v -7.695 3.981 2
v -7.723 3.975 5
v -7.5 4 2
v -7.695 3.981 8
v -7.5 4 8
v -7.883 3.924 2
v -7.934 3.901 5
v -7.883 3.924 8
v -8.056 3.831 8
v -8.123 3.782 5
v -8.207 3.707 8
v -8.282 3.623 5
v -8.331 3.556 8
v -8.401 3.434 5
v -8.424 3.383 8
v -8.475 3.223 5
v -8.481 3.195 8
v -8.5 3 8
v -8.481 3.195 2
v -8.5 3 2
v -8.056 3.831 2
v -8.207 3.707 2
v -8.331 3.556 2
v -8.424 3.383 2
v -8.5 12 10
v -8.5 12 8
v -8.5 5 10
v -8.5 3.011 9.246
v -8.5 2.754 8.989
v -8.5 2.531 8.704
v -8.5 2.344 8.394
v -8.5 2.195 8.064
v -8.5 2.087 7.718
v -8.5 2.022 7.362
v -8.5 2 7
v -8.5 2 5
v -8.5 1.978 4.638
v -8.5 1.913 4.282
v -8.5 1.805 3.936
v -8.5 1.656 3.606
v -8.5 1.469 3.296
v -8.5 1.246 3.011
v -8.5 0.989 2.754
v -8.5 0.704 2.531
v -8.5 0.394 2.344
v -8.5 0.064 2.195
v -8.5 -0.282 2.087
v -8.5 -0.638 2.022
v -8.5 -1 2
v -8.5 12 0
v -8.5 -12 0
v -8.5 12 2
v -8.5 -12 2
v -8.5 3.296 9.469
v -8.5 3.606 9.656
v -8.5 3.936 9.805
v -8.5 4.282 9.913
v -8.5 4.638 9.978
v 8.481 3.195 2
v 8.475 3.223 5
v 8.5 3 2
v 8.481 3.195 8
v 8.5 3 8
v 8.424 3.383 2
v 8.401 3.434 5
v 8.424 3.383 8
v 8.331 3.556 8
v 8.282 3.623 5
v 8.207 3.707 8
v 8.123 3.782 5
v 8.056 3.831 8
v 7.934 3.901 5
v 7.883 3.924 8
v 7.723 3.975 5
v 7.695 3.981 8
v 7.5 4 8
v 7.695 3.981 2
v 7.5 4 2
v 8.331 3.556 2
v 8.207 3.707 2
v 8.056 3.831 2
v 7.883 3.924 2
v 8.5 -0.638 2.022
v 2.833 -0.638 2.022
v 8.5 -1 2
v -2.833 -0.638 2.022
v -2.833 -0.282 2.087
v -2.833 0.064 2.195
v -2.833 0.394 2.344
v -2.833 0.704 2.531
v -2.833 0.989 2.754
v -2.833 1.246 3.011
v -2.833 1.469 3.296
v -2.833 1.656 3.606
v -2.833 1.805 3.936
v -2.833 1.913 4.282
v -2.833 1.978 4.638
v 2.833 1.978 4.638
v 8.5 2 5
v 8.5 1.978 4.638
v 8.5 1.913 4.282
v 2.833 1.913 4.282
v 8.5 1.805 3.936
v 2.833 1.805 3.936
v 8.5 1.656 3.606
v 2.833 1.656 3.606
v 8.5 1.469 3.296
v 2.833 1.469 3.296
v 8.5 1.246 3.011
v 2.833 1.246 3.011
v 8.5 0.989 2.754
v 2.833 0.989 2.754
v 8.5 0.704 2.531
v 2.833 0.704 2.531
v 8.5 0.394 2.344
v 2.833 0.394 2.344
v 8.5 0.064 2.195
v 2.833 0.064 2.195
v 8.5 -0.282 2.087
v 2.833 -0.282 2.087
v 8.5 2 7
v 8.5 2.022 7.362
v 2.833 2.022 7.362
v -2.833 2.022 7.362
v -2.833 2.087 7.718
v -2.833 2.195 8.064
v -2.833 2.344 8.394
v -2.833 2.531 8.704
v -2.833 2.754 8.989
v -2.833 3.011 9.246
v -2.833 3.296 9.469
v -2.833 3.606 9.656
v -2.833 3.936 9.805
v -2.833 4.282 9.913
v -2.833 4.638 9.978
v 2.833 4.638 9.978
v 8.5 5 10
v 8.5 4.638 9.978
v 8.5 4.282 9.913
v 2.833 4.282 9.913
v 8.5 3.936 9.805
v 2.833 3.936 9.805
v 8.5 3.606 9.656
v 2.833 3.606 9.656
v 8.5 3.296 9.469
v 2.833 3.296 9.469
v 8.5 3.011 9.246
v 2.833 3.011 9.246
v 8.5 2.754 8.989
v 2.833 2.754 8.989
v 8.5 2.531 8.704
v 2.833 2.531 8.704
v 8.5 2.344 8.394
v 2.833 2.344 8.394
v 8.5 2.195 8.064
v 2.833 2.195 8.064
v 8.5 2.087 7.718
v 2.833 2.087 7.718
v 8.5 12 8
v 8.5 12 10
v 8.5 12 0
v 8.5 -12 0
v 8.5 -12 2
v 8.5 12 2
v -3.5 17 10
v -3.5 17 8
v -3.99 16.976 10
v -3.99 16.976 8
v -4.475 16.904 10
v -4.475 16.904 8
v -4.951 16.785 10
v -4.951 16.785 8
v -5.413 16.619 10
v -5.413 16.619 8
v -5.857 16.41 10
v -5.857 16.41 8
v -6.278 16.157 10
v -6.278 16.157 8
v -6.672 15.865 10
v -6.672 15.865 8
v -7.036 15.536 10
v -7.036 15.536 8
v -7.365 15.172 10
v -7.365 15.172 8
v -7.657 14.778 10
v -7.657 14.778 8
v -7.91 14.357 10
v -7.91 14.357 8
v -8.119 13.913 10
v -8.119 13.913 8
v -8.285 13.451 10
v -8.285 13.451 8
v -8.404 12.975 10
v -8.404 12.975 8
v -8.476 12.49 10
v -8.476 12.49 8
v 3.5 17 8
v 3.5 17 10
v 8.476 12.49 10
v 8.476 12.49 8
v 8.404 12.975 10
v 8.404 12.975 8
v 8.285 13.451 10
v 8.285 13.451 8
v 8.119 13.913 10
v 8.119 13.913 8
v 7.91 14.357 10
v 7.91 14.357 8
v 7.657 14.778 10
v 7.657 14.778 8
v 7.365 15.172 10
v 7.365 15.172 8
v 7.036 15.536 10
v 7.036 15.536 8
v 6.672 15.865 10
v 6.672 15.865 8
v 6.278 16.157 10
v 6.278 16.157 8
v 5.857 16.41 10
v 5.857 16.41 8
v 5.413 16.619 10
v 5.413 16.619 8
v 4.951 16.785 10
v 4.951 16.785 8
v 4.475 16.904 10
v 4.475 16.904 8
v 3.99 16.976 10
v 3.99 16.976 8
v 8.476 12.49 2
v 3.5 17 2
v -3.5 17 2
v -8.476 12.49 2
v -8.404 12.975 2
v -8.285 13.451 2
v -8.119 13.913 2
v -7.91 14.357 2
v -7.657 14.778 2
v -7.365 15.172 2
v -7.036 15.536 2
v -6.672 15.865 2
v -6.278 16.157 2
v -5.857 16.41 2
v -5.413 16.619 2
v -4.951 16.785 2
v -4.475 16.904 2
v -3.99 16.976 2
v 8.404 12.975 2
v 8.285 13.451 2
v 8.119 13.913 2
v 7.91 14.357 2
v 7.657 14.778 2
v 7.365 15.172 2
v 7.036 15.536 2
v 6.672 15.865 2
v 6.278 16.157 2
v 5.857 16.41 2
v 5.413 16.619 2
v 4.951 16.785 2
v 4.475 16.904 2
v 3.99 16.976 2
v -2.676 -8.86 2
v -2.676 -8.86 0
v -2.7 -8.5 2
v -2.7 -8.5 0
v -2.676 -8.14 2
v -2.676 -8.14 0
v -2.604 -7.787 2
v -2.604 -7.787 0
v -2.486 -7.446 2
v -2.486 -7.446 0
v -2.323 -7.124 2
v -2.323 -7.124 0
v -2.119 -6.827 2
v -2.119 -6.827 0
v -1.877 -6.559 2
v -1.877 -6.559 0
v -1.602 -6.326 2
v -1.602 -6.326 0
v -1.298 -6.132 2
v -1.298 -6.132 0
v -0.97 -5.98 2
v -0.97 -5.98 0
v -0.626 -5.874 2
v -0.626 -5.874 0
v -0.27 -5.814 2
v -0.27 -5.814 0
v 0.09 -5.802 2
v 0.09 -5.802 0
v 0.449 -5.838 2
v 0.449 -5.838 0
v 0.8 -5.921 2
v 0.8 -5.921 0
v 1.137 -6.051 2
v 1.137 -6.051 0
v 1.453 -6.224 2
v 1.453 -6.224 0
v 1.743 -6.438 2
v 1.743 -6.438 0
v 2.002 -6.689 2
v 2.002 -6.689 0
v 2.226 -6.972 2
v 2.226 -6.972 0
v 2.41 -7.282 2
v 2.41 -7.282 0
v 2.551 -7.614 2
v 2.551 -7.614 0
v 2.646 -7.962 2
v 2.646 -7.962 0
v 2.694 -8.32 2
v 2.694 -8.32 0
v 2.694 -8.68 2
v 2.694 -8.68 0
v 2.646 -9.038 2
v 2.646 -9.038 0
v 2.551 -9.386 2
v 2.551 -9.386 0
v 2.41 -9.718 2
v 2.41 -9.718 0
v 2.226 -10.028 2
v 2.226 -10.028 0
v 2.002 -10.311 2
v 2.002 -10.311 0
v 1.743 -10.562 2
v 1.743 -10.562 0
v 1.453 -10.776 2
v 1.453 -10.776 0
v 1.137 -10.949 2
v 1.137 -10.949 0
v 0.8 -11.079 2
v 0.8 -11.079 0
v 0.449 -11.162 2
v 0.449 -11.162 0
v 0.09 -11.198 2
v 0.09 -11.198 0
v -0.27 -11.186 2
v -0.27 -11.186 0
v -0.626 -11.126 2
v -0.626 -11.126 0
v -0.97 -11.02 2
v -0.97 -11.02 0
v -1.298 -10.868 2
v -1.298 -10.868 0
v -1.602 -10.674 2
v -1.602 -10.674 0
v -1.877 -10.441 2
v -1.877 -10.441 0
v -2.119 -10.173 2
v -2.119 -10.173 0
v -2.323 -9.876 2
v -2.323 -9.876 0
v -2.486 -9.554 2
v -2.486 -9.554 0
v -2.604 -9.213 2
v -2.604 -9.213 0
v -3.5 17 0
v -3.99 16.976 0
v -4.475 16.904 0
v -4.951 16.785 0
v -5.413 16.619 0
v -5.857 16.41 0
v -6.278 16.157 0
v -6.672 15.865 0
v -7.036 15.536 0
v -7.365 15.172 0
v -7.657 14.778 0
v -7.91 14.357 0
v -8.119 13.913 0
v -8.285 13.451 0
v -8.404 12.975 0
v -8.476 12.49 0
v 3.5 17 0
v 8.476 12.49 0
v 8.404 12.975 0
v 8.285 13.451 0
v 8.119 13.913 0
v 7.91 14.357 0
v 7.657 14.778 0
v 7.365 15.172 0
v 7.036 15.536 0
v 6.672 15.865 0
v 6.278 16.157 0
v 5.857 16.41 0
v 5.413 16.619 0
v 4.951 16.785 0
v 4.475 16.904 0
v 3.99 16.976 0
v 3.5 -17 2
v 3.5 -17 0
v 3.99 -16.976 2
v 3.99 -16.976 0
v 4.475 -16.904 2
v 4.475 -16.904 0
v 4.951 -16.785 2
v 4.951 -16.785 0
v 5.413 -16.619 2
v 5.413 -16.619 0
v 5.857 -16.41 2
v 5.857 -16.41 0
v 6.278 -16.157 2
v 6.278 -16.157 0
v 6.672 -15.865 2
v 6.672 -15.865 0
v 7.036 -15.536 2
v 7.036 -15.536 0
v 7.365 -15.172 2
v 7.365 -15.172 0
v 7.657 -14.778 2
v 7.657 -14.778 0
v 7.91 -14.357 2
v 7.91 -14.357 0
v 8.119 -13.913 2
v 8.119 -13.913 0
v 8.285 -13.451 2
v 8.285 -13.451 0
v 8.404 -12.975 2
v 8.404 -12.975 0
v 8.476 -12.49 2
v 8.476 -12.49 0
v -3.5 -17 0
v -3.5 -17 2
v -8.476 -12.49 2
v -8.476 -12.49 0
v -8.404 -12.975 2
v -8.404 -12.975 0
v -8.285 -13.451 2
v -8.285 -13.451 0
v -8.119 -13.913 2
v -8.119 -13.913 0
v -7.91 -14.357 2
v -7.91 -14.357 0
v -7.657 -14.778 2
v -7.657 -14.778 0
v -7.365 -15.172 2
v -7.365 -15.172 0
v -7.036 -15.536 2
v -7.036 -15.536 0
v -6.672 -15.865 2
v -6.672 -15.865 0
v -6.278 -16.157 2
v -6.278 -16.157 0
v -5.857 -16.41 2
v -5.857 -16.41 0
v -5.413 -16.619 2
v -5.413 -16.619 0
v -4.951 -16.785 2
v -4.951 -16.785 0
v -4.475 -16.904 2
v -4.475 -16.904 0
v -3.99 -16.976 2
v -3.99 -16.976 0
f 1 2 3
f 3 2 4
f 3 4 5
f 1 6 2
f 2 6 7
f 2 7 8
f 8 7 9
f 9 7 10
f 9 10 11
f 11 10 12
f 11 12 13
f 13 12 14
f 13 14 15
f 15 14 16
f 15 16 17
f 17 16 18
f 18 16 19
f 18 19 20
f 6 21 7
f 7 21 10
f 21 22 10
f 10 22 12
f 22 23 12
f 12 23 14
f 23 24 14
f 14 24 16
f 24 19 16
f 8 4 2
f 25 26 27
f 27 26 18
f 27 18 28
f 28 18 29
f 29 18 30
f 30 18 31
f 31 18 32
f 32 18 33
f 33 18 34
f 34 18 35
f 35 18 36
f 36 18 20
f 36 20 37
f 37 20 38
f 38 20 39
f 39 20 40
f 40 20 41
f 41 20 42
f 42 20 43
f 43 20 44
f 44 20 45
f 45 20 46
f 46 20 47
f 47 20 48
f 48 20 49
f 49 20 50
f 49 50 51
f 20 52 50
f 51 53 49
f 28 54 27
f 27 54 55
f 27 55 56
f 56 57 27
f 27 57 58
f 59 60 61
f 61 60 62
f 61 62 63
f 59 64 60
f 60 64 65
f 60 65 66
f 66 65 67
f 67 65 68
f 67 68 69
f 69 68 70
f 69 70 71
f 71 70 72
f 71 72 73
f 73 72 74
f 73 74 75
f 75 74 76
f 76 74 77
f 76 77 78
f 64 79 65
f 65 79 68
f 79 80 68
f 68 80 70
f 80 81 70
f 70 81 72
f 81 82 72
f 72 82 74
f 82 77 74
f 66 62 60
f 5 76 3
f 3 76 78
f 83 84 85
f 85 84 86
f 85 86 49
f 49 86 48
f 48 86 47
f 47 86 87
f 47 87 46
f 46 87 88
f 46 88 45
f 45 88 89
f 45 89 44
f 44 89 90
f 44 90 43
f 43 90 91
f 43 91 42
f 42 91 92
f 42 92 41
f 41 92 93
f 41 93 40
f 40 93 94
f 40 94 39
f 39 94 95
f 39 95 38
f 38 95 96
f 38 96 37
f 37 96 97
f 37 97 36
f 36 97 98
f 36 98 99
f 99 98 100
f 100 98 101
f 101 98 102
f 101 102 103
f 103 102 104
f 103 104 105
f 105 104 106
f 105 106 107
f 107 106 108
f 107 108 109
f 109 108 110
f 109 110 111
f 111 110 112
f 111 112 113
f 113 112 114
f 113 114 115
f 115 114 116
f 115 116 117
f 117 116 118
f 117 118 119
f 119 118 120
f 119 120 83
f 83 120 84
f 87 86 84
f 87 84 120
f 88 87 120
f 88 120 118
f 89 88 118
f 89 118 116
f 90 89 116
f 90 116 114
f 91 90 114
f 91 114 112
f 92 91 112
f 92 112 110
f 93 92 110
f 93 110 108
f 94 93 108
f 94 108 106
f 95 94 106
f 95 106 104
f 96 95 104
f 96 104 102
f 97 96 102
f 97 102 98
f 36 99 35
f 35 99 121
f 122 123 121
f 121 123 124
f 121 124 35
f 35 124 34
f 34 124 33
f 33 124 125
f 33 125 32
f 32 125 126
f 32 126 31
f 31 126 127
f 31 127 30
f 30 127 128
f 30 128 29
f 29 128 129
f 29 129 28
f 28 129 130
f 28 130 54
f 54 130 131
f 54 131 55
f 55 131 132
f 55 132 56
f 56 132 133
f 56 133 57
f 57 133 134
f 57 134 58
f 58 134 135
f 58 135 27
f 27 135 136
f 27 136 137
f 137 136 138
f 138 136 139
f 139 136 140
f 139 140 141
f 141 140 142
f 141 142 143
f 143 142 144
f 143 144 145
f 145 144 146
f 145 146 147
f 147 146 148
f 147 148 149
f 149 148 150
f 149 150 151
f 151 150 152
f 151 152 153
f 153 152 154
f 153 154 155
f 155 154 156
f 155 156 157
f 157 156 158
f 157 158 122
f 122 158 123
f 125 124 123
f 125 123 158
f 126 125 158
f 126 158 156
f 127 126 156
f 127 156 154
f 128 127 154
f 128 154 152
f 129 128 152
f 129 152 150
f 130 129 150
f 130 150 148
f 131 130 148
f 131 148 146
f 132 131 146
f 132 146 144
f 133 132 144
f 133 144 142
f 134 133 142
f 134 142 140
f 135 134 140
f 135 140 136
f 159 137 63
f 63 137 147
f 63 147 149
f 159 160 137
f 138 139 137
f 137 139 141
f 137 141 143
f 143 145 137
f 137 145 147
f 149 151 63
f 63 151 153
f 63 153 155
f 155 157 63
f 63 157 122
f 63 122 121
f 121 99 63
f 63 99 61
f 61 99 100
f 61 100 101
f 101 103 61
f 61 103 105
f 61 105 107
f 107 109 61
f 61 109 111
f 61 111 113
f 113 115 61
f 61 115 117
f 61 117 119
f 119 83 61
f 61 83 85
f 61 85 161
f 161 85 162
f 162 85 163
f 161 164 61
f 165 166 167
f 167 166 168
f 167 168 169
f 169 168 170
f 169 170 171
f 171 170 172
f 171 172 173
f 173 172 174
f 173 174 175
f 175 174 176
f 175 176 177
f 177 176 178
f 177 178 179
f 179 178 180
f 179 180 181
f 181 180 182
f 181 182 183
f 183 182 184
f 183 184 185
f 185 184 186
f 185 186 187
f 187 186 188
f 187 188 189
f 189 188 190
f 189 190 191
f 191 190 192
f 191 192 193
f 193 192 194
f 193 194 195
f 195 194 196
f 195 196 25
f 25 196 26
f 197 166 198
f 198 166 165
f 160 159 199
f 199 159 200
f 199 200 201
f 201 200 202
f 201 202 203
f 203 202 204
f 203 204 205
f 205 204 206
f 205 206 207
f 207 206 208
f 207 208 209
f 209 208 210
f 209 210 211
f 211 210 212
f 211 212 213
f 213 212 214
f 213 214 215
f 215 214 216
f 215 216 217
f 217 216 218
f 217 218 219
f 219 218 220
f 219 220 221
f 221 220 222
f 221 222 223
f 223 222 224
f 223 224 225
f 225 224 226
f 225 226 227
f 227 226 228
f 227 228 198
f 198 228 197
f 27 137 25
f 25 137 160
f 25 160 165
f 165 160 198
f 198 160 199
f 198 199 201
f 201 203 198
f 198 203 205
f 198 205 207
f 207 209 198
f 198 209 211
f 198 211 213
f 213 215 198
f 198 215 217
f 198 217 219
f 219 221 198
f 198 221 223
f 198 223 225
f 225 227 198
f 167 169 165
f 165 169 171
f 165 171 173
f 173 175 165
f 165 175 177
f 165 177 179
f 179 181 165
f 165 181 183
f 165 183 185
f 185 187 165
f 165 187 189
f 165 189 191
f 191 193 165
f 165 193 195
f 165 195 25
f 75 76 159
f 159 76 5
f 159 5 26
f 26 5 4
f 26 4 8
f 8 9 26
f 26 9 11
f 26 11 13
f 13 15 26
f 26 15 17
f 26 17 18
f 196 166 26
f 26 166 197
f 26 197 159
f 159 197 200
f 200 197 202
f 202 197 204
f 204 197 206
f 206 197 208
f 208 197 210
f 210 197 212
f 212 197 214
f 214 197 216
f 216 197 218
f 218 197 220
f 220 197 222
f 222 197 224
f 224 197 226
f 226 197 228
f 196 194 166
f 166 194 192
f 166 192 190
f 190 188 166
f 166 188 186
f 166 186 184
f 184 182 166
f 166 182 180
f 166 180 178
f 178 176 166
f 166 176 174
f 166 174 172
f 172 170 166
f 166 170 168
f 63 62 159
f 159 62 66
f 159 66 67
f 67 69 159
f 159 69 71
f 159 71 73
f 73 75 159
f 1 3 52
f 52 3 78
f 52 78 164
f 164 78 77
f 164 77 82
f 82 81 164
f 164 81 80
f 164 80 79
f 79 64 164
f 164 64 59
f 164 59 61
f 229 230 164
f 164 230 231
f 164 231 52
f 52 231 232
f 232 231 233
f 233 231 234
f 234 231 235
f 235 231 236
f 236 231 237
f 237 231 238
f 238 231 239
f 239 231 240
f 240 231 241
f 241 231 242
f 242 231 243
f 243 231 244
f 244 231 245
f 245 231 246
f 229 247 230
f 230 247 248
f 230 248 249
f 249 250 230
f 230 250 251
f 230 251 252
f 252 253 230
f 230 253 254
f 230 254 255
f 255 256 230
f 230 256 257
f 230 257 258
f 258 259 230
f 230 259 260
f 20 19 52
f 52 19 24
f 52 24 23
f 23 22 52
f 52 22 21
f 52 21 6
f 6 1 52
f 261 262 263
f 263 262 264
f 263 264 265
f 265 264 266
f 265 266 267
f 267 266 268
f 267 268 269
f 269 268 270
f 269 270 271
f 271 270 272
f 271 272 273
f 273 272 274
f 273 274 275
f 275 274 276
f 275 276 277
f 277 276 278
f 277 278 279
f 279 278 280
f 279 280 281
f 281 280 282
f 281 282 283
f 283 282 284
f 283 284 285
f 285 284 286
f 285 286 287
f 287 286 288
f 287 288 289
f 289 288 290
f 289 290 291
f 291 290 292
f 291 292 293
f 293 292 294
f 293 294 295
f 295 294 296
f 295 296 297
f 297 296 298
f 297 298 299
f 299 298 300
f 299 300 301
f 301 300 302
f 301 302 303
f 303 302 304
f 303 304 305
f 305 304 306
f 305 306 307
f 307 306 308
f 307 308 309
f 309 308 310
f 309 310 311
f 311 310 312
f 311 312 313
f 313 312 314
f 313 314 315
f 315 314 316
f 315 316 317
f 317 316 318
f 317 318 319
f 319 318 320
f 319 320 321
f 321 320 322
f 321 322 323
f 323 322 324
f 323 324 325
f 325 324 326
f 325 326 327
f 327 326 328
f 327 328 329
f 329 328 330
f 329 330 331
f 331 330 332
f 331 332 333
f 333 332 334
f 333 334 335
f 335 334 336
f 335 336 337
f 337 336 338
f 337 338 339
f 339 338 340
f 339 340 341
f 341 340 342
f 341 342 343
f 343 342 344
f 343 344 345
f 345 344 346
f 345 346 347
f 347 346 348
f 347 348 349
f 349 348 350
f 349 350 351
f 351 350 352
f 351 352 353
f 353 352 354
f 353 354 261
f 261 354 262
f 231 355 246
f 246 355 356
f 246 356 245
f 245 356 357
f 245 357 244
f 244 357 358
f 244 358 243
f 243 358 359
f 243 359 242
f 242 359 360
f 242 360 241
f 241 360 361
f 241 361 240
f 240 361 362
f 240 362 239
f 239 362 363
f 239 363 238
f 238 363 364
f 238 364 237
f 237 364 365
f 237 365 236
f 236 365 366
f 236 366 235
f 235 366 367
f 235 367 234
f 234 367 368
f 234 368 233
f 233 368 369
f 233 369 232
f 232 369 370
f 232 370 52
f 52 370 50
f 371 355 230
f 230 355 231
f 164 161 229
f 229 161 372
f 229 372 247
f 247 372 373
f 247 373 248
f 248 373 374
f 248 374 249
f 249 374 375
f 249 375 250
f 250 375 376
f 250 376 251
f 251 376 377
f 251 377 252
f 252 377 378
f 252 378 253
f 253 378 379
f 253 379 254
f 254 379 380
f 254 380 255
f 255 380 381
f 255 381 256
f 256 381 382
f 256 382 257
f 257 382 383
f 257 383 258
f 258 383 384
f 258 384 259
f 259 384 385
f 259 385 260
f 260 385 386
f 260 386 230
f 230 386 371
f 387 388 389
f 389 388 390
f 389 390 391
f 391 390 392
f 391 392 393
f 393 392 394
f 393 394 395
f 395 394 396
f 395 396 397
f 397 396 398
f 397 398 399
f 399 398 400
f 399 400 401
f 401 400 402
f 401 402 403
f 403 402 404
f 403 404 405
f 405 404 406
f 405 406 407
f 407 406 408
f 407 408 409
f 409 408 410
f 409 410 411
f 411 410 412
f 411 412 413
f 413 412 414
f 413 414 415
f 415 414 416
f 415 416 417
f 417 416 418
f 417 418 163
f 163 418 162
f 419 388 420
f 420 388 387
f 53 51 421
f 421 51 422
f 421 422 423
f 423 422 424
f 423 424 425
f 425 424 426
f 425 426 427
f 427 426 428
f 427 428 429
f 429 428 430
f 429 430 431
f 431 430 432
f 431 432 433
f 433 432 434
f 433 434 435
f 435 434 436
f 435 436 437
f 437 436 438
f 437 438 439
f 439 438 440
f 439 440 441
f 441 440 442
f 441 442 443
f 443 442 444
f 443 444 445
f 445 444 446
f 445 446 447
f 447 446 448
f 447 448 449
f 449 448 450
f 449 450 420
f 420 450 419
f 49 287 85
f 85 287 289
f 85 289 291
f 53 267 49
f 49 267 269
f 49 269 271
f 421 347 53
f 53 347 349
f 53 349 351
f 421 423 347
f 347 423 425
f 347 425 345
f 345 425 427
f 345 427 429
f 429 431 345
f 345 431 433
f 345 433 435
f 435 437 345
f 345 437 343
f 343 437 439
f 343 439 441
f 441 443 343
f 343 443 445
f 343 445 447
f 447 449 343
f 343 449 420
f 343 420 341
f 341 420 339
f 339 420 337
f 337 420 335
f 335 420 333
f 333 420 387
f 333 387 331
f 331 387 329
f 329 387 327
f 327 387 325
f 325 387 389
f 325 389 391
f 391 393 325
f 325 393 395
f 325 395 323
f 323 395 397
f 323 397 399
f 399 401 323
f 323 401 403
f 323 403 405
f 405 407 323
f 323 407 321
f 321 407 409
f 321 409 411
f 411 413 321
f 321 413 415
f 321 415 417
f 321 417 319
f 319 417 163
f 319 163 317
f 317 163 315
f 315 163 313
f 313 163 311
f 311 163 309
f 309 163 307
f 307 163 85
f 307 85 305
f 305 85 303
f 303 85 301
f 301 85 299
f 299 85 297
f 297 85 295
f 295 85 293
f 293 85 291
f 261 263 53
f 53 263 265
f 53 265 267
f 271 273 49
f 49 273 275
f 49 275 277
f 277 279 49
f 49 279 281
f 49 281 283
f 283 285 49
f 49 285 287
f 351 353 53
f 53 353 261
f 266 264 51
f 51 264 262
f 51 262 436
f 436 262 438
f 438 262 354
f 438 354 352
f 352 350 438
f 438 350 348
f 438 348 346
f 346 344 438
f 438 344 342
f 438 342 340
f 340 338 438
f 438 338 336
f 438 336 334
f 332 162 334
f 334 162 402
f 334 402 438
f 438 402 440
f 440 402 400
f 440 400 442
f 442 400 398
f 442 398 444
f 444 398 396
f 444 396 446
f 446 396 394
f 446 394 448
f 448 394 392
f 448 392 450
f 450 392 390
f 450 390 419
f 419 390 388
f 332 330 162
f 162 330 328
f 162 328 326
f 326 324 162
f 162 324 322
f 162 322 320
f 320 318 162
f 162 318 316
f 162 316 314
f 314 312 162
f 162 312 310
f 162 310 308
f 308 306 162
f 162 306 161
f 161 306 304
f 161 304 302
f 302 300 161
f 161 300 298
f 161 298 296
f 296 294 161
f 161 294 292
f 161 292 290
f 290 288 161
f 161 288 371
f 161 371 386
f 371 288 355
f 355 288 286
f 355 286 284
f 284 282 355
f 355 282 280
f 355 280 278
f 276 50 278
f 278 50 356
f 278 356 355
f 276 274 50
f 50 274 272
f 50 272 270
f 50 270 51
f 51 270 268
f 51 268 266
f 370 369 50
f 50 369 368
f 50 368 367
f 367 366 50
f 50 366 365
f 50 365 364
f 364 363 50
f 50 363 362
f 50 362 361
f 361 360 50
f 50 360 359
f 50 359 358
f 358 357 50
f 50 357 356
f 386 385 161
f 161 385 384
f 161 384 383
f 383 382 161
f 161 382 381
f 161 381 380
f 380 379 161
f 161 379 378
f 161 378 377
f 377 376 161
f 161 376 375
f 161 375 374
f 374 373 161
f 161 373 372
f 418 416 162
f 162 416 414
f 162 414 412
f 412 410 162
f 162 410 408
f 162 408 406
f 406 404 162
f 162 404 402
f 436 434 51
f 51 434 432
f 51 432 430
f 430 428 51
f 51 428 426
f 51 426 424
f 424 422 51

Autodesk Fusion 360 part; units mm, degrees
sketch "Sketch1" plane through (0, 0, 0) normal (0, 0, 1) x (1, 0, 0)
  line L0 (8.5, 17) -> (-8.5, 17)
  line L1 (-8.5, 17) -> (-8.5, -12)
  line L2 (-3.5, -17) -> (3.5, -17)
  line L3 (8.5, -12) -> (8.5, 17)
  line L4 (8.5, 17) -> (-8.5, -17) construction
  line L5 (-8.5, 17) -> (8.5, -17) construction
  line L6 (0, -17) -> (0, 17) construction
  line L7 (-3.5, 17) -> (3.5, 17)
  line L8 (8.5, 12) -> (8.5, 2)
  line L9 (8.5, 2) -> (-8.5, 2)
  line L10 (-8.5, 2) -> (-8.5, 12)
  circle A0 centre (0, -8.5) radius 4.5 construction
  line L11 (-2.0097, -4) -> (2.3533, -4) construction
  line L12 (0, 2) -> (0, 17) construction
  circle A1 centre (0, -8.5) radius 2.7
  line L13 (-8.5, 4) -> (8.5, 4)
  arc A2 (-3.5, 17) -> (-8.5, 12) centre (-3.5, 12) ccw
  arc A3 (8.5, 12) -> (3.5, 17) centre (3.5, 12) ccw
  arc A4 (3.5, -17) -> (8.5, -12) centre (3.5, -12) ccw
  arc A5 (-8.5, -12) -> (-3.5, -17) centre (-3.5, -12) ccw
  point P0 (-8.5, 17)
  point P1 (8.5, 17)
  dimension "d4" = 9
  dimension "d12" = 8.5
  dimension "d13" = 15
  dimension "d14" = 17
  dimension "d15" = 5.4
  dimension "d16" = 10.5
  dimension "d37" = 17
  dimension "d38" = 2
  dimension "d39" = 8.5
  dimension "d43" = 5
  dimension "d44" = 5
extrude "Extrude1" add sketch "Sketch1" along normal blind 2 contours L0 L1 L3 L7 L8 L10 L13 A2 A3 | L1 L3 L8 L9 L10 L13 | L1 L2 L3 L9 A4 A5
extrude "Extrude2" add sketch "Sketch1" along normal blind 6 from surface at 2 contours L1 L3 L8 L9 L10 L13
extrude "Extrude4" add sketch "Sketch1" along normal blind 2 from surface at 8 contours L0 L1 L3 L7 L8 L10 L13 A2 A3 | L1 L3 L8 L9 L10 L13
fillet "Fillet2" radius 3 2 edges at (0, 2, 10) (0, 2, 2)
fillet "Fillet2" radius 1 2 edges at (8.5, 4, 5) (-8.5, 4, 5)
equation "spacing = 4 mm"
equation "d8 = ( d4 / 2 ) + spacing"
equation "d12 = ( d4 / 2 ) + spacing"
equation "d14 = d37"
equation "d39 = d12"
equation "d44 = d43"
